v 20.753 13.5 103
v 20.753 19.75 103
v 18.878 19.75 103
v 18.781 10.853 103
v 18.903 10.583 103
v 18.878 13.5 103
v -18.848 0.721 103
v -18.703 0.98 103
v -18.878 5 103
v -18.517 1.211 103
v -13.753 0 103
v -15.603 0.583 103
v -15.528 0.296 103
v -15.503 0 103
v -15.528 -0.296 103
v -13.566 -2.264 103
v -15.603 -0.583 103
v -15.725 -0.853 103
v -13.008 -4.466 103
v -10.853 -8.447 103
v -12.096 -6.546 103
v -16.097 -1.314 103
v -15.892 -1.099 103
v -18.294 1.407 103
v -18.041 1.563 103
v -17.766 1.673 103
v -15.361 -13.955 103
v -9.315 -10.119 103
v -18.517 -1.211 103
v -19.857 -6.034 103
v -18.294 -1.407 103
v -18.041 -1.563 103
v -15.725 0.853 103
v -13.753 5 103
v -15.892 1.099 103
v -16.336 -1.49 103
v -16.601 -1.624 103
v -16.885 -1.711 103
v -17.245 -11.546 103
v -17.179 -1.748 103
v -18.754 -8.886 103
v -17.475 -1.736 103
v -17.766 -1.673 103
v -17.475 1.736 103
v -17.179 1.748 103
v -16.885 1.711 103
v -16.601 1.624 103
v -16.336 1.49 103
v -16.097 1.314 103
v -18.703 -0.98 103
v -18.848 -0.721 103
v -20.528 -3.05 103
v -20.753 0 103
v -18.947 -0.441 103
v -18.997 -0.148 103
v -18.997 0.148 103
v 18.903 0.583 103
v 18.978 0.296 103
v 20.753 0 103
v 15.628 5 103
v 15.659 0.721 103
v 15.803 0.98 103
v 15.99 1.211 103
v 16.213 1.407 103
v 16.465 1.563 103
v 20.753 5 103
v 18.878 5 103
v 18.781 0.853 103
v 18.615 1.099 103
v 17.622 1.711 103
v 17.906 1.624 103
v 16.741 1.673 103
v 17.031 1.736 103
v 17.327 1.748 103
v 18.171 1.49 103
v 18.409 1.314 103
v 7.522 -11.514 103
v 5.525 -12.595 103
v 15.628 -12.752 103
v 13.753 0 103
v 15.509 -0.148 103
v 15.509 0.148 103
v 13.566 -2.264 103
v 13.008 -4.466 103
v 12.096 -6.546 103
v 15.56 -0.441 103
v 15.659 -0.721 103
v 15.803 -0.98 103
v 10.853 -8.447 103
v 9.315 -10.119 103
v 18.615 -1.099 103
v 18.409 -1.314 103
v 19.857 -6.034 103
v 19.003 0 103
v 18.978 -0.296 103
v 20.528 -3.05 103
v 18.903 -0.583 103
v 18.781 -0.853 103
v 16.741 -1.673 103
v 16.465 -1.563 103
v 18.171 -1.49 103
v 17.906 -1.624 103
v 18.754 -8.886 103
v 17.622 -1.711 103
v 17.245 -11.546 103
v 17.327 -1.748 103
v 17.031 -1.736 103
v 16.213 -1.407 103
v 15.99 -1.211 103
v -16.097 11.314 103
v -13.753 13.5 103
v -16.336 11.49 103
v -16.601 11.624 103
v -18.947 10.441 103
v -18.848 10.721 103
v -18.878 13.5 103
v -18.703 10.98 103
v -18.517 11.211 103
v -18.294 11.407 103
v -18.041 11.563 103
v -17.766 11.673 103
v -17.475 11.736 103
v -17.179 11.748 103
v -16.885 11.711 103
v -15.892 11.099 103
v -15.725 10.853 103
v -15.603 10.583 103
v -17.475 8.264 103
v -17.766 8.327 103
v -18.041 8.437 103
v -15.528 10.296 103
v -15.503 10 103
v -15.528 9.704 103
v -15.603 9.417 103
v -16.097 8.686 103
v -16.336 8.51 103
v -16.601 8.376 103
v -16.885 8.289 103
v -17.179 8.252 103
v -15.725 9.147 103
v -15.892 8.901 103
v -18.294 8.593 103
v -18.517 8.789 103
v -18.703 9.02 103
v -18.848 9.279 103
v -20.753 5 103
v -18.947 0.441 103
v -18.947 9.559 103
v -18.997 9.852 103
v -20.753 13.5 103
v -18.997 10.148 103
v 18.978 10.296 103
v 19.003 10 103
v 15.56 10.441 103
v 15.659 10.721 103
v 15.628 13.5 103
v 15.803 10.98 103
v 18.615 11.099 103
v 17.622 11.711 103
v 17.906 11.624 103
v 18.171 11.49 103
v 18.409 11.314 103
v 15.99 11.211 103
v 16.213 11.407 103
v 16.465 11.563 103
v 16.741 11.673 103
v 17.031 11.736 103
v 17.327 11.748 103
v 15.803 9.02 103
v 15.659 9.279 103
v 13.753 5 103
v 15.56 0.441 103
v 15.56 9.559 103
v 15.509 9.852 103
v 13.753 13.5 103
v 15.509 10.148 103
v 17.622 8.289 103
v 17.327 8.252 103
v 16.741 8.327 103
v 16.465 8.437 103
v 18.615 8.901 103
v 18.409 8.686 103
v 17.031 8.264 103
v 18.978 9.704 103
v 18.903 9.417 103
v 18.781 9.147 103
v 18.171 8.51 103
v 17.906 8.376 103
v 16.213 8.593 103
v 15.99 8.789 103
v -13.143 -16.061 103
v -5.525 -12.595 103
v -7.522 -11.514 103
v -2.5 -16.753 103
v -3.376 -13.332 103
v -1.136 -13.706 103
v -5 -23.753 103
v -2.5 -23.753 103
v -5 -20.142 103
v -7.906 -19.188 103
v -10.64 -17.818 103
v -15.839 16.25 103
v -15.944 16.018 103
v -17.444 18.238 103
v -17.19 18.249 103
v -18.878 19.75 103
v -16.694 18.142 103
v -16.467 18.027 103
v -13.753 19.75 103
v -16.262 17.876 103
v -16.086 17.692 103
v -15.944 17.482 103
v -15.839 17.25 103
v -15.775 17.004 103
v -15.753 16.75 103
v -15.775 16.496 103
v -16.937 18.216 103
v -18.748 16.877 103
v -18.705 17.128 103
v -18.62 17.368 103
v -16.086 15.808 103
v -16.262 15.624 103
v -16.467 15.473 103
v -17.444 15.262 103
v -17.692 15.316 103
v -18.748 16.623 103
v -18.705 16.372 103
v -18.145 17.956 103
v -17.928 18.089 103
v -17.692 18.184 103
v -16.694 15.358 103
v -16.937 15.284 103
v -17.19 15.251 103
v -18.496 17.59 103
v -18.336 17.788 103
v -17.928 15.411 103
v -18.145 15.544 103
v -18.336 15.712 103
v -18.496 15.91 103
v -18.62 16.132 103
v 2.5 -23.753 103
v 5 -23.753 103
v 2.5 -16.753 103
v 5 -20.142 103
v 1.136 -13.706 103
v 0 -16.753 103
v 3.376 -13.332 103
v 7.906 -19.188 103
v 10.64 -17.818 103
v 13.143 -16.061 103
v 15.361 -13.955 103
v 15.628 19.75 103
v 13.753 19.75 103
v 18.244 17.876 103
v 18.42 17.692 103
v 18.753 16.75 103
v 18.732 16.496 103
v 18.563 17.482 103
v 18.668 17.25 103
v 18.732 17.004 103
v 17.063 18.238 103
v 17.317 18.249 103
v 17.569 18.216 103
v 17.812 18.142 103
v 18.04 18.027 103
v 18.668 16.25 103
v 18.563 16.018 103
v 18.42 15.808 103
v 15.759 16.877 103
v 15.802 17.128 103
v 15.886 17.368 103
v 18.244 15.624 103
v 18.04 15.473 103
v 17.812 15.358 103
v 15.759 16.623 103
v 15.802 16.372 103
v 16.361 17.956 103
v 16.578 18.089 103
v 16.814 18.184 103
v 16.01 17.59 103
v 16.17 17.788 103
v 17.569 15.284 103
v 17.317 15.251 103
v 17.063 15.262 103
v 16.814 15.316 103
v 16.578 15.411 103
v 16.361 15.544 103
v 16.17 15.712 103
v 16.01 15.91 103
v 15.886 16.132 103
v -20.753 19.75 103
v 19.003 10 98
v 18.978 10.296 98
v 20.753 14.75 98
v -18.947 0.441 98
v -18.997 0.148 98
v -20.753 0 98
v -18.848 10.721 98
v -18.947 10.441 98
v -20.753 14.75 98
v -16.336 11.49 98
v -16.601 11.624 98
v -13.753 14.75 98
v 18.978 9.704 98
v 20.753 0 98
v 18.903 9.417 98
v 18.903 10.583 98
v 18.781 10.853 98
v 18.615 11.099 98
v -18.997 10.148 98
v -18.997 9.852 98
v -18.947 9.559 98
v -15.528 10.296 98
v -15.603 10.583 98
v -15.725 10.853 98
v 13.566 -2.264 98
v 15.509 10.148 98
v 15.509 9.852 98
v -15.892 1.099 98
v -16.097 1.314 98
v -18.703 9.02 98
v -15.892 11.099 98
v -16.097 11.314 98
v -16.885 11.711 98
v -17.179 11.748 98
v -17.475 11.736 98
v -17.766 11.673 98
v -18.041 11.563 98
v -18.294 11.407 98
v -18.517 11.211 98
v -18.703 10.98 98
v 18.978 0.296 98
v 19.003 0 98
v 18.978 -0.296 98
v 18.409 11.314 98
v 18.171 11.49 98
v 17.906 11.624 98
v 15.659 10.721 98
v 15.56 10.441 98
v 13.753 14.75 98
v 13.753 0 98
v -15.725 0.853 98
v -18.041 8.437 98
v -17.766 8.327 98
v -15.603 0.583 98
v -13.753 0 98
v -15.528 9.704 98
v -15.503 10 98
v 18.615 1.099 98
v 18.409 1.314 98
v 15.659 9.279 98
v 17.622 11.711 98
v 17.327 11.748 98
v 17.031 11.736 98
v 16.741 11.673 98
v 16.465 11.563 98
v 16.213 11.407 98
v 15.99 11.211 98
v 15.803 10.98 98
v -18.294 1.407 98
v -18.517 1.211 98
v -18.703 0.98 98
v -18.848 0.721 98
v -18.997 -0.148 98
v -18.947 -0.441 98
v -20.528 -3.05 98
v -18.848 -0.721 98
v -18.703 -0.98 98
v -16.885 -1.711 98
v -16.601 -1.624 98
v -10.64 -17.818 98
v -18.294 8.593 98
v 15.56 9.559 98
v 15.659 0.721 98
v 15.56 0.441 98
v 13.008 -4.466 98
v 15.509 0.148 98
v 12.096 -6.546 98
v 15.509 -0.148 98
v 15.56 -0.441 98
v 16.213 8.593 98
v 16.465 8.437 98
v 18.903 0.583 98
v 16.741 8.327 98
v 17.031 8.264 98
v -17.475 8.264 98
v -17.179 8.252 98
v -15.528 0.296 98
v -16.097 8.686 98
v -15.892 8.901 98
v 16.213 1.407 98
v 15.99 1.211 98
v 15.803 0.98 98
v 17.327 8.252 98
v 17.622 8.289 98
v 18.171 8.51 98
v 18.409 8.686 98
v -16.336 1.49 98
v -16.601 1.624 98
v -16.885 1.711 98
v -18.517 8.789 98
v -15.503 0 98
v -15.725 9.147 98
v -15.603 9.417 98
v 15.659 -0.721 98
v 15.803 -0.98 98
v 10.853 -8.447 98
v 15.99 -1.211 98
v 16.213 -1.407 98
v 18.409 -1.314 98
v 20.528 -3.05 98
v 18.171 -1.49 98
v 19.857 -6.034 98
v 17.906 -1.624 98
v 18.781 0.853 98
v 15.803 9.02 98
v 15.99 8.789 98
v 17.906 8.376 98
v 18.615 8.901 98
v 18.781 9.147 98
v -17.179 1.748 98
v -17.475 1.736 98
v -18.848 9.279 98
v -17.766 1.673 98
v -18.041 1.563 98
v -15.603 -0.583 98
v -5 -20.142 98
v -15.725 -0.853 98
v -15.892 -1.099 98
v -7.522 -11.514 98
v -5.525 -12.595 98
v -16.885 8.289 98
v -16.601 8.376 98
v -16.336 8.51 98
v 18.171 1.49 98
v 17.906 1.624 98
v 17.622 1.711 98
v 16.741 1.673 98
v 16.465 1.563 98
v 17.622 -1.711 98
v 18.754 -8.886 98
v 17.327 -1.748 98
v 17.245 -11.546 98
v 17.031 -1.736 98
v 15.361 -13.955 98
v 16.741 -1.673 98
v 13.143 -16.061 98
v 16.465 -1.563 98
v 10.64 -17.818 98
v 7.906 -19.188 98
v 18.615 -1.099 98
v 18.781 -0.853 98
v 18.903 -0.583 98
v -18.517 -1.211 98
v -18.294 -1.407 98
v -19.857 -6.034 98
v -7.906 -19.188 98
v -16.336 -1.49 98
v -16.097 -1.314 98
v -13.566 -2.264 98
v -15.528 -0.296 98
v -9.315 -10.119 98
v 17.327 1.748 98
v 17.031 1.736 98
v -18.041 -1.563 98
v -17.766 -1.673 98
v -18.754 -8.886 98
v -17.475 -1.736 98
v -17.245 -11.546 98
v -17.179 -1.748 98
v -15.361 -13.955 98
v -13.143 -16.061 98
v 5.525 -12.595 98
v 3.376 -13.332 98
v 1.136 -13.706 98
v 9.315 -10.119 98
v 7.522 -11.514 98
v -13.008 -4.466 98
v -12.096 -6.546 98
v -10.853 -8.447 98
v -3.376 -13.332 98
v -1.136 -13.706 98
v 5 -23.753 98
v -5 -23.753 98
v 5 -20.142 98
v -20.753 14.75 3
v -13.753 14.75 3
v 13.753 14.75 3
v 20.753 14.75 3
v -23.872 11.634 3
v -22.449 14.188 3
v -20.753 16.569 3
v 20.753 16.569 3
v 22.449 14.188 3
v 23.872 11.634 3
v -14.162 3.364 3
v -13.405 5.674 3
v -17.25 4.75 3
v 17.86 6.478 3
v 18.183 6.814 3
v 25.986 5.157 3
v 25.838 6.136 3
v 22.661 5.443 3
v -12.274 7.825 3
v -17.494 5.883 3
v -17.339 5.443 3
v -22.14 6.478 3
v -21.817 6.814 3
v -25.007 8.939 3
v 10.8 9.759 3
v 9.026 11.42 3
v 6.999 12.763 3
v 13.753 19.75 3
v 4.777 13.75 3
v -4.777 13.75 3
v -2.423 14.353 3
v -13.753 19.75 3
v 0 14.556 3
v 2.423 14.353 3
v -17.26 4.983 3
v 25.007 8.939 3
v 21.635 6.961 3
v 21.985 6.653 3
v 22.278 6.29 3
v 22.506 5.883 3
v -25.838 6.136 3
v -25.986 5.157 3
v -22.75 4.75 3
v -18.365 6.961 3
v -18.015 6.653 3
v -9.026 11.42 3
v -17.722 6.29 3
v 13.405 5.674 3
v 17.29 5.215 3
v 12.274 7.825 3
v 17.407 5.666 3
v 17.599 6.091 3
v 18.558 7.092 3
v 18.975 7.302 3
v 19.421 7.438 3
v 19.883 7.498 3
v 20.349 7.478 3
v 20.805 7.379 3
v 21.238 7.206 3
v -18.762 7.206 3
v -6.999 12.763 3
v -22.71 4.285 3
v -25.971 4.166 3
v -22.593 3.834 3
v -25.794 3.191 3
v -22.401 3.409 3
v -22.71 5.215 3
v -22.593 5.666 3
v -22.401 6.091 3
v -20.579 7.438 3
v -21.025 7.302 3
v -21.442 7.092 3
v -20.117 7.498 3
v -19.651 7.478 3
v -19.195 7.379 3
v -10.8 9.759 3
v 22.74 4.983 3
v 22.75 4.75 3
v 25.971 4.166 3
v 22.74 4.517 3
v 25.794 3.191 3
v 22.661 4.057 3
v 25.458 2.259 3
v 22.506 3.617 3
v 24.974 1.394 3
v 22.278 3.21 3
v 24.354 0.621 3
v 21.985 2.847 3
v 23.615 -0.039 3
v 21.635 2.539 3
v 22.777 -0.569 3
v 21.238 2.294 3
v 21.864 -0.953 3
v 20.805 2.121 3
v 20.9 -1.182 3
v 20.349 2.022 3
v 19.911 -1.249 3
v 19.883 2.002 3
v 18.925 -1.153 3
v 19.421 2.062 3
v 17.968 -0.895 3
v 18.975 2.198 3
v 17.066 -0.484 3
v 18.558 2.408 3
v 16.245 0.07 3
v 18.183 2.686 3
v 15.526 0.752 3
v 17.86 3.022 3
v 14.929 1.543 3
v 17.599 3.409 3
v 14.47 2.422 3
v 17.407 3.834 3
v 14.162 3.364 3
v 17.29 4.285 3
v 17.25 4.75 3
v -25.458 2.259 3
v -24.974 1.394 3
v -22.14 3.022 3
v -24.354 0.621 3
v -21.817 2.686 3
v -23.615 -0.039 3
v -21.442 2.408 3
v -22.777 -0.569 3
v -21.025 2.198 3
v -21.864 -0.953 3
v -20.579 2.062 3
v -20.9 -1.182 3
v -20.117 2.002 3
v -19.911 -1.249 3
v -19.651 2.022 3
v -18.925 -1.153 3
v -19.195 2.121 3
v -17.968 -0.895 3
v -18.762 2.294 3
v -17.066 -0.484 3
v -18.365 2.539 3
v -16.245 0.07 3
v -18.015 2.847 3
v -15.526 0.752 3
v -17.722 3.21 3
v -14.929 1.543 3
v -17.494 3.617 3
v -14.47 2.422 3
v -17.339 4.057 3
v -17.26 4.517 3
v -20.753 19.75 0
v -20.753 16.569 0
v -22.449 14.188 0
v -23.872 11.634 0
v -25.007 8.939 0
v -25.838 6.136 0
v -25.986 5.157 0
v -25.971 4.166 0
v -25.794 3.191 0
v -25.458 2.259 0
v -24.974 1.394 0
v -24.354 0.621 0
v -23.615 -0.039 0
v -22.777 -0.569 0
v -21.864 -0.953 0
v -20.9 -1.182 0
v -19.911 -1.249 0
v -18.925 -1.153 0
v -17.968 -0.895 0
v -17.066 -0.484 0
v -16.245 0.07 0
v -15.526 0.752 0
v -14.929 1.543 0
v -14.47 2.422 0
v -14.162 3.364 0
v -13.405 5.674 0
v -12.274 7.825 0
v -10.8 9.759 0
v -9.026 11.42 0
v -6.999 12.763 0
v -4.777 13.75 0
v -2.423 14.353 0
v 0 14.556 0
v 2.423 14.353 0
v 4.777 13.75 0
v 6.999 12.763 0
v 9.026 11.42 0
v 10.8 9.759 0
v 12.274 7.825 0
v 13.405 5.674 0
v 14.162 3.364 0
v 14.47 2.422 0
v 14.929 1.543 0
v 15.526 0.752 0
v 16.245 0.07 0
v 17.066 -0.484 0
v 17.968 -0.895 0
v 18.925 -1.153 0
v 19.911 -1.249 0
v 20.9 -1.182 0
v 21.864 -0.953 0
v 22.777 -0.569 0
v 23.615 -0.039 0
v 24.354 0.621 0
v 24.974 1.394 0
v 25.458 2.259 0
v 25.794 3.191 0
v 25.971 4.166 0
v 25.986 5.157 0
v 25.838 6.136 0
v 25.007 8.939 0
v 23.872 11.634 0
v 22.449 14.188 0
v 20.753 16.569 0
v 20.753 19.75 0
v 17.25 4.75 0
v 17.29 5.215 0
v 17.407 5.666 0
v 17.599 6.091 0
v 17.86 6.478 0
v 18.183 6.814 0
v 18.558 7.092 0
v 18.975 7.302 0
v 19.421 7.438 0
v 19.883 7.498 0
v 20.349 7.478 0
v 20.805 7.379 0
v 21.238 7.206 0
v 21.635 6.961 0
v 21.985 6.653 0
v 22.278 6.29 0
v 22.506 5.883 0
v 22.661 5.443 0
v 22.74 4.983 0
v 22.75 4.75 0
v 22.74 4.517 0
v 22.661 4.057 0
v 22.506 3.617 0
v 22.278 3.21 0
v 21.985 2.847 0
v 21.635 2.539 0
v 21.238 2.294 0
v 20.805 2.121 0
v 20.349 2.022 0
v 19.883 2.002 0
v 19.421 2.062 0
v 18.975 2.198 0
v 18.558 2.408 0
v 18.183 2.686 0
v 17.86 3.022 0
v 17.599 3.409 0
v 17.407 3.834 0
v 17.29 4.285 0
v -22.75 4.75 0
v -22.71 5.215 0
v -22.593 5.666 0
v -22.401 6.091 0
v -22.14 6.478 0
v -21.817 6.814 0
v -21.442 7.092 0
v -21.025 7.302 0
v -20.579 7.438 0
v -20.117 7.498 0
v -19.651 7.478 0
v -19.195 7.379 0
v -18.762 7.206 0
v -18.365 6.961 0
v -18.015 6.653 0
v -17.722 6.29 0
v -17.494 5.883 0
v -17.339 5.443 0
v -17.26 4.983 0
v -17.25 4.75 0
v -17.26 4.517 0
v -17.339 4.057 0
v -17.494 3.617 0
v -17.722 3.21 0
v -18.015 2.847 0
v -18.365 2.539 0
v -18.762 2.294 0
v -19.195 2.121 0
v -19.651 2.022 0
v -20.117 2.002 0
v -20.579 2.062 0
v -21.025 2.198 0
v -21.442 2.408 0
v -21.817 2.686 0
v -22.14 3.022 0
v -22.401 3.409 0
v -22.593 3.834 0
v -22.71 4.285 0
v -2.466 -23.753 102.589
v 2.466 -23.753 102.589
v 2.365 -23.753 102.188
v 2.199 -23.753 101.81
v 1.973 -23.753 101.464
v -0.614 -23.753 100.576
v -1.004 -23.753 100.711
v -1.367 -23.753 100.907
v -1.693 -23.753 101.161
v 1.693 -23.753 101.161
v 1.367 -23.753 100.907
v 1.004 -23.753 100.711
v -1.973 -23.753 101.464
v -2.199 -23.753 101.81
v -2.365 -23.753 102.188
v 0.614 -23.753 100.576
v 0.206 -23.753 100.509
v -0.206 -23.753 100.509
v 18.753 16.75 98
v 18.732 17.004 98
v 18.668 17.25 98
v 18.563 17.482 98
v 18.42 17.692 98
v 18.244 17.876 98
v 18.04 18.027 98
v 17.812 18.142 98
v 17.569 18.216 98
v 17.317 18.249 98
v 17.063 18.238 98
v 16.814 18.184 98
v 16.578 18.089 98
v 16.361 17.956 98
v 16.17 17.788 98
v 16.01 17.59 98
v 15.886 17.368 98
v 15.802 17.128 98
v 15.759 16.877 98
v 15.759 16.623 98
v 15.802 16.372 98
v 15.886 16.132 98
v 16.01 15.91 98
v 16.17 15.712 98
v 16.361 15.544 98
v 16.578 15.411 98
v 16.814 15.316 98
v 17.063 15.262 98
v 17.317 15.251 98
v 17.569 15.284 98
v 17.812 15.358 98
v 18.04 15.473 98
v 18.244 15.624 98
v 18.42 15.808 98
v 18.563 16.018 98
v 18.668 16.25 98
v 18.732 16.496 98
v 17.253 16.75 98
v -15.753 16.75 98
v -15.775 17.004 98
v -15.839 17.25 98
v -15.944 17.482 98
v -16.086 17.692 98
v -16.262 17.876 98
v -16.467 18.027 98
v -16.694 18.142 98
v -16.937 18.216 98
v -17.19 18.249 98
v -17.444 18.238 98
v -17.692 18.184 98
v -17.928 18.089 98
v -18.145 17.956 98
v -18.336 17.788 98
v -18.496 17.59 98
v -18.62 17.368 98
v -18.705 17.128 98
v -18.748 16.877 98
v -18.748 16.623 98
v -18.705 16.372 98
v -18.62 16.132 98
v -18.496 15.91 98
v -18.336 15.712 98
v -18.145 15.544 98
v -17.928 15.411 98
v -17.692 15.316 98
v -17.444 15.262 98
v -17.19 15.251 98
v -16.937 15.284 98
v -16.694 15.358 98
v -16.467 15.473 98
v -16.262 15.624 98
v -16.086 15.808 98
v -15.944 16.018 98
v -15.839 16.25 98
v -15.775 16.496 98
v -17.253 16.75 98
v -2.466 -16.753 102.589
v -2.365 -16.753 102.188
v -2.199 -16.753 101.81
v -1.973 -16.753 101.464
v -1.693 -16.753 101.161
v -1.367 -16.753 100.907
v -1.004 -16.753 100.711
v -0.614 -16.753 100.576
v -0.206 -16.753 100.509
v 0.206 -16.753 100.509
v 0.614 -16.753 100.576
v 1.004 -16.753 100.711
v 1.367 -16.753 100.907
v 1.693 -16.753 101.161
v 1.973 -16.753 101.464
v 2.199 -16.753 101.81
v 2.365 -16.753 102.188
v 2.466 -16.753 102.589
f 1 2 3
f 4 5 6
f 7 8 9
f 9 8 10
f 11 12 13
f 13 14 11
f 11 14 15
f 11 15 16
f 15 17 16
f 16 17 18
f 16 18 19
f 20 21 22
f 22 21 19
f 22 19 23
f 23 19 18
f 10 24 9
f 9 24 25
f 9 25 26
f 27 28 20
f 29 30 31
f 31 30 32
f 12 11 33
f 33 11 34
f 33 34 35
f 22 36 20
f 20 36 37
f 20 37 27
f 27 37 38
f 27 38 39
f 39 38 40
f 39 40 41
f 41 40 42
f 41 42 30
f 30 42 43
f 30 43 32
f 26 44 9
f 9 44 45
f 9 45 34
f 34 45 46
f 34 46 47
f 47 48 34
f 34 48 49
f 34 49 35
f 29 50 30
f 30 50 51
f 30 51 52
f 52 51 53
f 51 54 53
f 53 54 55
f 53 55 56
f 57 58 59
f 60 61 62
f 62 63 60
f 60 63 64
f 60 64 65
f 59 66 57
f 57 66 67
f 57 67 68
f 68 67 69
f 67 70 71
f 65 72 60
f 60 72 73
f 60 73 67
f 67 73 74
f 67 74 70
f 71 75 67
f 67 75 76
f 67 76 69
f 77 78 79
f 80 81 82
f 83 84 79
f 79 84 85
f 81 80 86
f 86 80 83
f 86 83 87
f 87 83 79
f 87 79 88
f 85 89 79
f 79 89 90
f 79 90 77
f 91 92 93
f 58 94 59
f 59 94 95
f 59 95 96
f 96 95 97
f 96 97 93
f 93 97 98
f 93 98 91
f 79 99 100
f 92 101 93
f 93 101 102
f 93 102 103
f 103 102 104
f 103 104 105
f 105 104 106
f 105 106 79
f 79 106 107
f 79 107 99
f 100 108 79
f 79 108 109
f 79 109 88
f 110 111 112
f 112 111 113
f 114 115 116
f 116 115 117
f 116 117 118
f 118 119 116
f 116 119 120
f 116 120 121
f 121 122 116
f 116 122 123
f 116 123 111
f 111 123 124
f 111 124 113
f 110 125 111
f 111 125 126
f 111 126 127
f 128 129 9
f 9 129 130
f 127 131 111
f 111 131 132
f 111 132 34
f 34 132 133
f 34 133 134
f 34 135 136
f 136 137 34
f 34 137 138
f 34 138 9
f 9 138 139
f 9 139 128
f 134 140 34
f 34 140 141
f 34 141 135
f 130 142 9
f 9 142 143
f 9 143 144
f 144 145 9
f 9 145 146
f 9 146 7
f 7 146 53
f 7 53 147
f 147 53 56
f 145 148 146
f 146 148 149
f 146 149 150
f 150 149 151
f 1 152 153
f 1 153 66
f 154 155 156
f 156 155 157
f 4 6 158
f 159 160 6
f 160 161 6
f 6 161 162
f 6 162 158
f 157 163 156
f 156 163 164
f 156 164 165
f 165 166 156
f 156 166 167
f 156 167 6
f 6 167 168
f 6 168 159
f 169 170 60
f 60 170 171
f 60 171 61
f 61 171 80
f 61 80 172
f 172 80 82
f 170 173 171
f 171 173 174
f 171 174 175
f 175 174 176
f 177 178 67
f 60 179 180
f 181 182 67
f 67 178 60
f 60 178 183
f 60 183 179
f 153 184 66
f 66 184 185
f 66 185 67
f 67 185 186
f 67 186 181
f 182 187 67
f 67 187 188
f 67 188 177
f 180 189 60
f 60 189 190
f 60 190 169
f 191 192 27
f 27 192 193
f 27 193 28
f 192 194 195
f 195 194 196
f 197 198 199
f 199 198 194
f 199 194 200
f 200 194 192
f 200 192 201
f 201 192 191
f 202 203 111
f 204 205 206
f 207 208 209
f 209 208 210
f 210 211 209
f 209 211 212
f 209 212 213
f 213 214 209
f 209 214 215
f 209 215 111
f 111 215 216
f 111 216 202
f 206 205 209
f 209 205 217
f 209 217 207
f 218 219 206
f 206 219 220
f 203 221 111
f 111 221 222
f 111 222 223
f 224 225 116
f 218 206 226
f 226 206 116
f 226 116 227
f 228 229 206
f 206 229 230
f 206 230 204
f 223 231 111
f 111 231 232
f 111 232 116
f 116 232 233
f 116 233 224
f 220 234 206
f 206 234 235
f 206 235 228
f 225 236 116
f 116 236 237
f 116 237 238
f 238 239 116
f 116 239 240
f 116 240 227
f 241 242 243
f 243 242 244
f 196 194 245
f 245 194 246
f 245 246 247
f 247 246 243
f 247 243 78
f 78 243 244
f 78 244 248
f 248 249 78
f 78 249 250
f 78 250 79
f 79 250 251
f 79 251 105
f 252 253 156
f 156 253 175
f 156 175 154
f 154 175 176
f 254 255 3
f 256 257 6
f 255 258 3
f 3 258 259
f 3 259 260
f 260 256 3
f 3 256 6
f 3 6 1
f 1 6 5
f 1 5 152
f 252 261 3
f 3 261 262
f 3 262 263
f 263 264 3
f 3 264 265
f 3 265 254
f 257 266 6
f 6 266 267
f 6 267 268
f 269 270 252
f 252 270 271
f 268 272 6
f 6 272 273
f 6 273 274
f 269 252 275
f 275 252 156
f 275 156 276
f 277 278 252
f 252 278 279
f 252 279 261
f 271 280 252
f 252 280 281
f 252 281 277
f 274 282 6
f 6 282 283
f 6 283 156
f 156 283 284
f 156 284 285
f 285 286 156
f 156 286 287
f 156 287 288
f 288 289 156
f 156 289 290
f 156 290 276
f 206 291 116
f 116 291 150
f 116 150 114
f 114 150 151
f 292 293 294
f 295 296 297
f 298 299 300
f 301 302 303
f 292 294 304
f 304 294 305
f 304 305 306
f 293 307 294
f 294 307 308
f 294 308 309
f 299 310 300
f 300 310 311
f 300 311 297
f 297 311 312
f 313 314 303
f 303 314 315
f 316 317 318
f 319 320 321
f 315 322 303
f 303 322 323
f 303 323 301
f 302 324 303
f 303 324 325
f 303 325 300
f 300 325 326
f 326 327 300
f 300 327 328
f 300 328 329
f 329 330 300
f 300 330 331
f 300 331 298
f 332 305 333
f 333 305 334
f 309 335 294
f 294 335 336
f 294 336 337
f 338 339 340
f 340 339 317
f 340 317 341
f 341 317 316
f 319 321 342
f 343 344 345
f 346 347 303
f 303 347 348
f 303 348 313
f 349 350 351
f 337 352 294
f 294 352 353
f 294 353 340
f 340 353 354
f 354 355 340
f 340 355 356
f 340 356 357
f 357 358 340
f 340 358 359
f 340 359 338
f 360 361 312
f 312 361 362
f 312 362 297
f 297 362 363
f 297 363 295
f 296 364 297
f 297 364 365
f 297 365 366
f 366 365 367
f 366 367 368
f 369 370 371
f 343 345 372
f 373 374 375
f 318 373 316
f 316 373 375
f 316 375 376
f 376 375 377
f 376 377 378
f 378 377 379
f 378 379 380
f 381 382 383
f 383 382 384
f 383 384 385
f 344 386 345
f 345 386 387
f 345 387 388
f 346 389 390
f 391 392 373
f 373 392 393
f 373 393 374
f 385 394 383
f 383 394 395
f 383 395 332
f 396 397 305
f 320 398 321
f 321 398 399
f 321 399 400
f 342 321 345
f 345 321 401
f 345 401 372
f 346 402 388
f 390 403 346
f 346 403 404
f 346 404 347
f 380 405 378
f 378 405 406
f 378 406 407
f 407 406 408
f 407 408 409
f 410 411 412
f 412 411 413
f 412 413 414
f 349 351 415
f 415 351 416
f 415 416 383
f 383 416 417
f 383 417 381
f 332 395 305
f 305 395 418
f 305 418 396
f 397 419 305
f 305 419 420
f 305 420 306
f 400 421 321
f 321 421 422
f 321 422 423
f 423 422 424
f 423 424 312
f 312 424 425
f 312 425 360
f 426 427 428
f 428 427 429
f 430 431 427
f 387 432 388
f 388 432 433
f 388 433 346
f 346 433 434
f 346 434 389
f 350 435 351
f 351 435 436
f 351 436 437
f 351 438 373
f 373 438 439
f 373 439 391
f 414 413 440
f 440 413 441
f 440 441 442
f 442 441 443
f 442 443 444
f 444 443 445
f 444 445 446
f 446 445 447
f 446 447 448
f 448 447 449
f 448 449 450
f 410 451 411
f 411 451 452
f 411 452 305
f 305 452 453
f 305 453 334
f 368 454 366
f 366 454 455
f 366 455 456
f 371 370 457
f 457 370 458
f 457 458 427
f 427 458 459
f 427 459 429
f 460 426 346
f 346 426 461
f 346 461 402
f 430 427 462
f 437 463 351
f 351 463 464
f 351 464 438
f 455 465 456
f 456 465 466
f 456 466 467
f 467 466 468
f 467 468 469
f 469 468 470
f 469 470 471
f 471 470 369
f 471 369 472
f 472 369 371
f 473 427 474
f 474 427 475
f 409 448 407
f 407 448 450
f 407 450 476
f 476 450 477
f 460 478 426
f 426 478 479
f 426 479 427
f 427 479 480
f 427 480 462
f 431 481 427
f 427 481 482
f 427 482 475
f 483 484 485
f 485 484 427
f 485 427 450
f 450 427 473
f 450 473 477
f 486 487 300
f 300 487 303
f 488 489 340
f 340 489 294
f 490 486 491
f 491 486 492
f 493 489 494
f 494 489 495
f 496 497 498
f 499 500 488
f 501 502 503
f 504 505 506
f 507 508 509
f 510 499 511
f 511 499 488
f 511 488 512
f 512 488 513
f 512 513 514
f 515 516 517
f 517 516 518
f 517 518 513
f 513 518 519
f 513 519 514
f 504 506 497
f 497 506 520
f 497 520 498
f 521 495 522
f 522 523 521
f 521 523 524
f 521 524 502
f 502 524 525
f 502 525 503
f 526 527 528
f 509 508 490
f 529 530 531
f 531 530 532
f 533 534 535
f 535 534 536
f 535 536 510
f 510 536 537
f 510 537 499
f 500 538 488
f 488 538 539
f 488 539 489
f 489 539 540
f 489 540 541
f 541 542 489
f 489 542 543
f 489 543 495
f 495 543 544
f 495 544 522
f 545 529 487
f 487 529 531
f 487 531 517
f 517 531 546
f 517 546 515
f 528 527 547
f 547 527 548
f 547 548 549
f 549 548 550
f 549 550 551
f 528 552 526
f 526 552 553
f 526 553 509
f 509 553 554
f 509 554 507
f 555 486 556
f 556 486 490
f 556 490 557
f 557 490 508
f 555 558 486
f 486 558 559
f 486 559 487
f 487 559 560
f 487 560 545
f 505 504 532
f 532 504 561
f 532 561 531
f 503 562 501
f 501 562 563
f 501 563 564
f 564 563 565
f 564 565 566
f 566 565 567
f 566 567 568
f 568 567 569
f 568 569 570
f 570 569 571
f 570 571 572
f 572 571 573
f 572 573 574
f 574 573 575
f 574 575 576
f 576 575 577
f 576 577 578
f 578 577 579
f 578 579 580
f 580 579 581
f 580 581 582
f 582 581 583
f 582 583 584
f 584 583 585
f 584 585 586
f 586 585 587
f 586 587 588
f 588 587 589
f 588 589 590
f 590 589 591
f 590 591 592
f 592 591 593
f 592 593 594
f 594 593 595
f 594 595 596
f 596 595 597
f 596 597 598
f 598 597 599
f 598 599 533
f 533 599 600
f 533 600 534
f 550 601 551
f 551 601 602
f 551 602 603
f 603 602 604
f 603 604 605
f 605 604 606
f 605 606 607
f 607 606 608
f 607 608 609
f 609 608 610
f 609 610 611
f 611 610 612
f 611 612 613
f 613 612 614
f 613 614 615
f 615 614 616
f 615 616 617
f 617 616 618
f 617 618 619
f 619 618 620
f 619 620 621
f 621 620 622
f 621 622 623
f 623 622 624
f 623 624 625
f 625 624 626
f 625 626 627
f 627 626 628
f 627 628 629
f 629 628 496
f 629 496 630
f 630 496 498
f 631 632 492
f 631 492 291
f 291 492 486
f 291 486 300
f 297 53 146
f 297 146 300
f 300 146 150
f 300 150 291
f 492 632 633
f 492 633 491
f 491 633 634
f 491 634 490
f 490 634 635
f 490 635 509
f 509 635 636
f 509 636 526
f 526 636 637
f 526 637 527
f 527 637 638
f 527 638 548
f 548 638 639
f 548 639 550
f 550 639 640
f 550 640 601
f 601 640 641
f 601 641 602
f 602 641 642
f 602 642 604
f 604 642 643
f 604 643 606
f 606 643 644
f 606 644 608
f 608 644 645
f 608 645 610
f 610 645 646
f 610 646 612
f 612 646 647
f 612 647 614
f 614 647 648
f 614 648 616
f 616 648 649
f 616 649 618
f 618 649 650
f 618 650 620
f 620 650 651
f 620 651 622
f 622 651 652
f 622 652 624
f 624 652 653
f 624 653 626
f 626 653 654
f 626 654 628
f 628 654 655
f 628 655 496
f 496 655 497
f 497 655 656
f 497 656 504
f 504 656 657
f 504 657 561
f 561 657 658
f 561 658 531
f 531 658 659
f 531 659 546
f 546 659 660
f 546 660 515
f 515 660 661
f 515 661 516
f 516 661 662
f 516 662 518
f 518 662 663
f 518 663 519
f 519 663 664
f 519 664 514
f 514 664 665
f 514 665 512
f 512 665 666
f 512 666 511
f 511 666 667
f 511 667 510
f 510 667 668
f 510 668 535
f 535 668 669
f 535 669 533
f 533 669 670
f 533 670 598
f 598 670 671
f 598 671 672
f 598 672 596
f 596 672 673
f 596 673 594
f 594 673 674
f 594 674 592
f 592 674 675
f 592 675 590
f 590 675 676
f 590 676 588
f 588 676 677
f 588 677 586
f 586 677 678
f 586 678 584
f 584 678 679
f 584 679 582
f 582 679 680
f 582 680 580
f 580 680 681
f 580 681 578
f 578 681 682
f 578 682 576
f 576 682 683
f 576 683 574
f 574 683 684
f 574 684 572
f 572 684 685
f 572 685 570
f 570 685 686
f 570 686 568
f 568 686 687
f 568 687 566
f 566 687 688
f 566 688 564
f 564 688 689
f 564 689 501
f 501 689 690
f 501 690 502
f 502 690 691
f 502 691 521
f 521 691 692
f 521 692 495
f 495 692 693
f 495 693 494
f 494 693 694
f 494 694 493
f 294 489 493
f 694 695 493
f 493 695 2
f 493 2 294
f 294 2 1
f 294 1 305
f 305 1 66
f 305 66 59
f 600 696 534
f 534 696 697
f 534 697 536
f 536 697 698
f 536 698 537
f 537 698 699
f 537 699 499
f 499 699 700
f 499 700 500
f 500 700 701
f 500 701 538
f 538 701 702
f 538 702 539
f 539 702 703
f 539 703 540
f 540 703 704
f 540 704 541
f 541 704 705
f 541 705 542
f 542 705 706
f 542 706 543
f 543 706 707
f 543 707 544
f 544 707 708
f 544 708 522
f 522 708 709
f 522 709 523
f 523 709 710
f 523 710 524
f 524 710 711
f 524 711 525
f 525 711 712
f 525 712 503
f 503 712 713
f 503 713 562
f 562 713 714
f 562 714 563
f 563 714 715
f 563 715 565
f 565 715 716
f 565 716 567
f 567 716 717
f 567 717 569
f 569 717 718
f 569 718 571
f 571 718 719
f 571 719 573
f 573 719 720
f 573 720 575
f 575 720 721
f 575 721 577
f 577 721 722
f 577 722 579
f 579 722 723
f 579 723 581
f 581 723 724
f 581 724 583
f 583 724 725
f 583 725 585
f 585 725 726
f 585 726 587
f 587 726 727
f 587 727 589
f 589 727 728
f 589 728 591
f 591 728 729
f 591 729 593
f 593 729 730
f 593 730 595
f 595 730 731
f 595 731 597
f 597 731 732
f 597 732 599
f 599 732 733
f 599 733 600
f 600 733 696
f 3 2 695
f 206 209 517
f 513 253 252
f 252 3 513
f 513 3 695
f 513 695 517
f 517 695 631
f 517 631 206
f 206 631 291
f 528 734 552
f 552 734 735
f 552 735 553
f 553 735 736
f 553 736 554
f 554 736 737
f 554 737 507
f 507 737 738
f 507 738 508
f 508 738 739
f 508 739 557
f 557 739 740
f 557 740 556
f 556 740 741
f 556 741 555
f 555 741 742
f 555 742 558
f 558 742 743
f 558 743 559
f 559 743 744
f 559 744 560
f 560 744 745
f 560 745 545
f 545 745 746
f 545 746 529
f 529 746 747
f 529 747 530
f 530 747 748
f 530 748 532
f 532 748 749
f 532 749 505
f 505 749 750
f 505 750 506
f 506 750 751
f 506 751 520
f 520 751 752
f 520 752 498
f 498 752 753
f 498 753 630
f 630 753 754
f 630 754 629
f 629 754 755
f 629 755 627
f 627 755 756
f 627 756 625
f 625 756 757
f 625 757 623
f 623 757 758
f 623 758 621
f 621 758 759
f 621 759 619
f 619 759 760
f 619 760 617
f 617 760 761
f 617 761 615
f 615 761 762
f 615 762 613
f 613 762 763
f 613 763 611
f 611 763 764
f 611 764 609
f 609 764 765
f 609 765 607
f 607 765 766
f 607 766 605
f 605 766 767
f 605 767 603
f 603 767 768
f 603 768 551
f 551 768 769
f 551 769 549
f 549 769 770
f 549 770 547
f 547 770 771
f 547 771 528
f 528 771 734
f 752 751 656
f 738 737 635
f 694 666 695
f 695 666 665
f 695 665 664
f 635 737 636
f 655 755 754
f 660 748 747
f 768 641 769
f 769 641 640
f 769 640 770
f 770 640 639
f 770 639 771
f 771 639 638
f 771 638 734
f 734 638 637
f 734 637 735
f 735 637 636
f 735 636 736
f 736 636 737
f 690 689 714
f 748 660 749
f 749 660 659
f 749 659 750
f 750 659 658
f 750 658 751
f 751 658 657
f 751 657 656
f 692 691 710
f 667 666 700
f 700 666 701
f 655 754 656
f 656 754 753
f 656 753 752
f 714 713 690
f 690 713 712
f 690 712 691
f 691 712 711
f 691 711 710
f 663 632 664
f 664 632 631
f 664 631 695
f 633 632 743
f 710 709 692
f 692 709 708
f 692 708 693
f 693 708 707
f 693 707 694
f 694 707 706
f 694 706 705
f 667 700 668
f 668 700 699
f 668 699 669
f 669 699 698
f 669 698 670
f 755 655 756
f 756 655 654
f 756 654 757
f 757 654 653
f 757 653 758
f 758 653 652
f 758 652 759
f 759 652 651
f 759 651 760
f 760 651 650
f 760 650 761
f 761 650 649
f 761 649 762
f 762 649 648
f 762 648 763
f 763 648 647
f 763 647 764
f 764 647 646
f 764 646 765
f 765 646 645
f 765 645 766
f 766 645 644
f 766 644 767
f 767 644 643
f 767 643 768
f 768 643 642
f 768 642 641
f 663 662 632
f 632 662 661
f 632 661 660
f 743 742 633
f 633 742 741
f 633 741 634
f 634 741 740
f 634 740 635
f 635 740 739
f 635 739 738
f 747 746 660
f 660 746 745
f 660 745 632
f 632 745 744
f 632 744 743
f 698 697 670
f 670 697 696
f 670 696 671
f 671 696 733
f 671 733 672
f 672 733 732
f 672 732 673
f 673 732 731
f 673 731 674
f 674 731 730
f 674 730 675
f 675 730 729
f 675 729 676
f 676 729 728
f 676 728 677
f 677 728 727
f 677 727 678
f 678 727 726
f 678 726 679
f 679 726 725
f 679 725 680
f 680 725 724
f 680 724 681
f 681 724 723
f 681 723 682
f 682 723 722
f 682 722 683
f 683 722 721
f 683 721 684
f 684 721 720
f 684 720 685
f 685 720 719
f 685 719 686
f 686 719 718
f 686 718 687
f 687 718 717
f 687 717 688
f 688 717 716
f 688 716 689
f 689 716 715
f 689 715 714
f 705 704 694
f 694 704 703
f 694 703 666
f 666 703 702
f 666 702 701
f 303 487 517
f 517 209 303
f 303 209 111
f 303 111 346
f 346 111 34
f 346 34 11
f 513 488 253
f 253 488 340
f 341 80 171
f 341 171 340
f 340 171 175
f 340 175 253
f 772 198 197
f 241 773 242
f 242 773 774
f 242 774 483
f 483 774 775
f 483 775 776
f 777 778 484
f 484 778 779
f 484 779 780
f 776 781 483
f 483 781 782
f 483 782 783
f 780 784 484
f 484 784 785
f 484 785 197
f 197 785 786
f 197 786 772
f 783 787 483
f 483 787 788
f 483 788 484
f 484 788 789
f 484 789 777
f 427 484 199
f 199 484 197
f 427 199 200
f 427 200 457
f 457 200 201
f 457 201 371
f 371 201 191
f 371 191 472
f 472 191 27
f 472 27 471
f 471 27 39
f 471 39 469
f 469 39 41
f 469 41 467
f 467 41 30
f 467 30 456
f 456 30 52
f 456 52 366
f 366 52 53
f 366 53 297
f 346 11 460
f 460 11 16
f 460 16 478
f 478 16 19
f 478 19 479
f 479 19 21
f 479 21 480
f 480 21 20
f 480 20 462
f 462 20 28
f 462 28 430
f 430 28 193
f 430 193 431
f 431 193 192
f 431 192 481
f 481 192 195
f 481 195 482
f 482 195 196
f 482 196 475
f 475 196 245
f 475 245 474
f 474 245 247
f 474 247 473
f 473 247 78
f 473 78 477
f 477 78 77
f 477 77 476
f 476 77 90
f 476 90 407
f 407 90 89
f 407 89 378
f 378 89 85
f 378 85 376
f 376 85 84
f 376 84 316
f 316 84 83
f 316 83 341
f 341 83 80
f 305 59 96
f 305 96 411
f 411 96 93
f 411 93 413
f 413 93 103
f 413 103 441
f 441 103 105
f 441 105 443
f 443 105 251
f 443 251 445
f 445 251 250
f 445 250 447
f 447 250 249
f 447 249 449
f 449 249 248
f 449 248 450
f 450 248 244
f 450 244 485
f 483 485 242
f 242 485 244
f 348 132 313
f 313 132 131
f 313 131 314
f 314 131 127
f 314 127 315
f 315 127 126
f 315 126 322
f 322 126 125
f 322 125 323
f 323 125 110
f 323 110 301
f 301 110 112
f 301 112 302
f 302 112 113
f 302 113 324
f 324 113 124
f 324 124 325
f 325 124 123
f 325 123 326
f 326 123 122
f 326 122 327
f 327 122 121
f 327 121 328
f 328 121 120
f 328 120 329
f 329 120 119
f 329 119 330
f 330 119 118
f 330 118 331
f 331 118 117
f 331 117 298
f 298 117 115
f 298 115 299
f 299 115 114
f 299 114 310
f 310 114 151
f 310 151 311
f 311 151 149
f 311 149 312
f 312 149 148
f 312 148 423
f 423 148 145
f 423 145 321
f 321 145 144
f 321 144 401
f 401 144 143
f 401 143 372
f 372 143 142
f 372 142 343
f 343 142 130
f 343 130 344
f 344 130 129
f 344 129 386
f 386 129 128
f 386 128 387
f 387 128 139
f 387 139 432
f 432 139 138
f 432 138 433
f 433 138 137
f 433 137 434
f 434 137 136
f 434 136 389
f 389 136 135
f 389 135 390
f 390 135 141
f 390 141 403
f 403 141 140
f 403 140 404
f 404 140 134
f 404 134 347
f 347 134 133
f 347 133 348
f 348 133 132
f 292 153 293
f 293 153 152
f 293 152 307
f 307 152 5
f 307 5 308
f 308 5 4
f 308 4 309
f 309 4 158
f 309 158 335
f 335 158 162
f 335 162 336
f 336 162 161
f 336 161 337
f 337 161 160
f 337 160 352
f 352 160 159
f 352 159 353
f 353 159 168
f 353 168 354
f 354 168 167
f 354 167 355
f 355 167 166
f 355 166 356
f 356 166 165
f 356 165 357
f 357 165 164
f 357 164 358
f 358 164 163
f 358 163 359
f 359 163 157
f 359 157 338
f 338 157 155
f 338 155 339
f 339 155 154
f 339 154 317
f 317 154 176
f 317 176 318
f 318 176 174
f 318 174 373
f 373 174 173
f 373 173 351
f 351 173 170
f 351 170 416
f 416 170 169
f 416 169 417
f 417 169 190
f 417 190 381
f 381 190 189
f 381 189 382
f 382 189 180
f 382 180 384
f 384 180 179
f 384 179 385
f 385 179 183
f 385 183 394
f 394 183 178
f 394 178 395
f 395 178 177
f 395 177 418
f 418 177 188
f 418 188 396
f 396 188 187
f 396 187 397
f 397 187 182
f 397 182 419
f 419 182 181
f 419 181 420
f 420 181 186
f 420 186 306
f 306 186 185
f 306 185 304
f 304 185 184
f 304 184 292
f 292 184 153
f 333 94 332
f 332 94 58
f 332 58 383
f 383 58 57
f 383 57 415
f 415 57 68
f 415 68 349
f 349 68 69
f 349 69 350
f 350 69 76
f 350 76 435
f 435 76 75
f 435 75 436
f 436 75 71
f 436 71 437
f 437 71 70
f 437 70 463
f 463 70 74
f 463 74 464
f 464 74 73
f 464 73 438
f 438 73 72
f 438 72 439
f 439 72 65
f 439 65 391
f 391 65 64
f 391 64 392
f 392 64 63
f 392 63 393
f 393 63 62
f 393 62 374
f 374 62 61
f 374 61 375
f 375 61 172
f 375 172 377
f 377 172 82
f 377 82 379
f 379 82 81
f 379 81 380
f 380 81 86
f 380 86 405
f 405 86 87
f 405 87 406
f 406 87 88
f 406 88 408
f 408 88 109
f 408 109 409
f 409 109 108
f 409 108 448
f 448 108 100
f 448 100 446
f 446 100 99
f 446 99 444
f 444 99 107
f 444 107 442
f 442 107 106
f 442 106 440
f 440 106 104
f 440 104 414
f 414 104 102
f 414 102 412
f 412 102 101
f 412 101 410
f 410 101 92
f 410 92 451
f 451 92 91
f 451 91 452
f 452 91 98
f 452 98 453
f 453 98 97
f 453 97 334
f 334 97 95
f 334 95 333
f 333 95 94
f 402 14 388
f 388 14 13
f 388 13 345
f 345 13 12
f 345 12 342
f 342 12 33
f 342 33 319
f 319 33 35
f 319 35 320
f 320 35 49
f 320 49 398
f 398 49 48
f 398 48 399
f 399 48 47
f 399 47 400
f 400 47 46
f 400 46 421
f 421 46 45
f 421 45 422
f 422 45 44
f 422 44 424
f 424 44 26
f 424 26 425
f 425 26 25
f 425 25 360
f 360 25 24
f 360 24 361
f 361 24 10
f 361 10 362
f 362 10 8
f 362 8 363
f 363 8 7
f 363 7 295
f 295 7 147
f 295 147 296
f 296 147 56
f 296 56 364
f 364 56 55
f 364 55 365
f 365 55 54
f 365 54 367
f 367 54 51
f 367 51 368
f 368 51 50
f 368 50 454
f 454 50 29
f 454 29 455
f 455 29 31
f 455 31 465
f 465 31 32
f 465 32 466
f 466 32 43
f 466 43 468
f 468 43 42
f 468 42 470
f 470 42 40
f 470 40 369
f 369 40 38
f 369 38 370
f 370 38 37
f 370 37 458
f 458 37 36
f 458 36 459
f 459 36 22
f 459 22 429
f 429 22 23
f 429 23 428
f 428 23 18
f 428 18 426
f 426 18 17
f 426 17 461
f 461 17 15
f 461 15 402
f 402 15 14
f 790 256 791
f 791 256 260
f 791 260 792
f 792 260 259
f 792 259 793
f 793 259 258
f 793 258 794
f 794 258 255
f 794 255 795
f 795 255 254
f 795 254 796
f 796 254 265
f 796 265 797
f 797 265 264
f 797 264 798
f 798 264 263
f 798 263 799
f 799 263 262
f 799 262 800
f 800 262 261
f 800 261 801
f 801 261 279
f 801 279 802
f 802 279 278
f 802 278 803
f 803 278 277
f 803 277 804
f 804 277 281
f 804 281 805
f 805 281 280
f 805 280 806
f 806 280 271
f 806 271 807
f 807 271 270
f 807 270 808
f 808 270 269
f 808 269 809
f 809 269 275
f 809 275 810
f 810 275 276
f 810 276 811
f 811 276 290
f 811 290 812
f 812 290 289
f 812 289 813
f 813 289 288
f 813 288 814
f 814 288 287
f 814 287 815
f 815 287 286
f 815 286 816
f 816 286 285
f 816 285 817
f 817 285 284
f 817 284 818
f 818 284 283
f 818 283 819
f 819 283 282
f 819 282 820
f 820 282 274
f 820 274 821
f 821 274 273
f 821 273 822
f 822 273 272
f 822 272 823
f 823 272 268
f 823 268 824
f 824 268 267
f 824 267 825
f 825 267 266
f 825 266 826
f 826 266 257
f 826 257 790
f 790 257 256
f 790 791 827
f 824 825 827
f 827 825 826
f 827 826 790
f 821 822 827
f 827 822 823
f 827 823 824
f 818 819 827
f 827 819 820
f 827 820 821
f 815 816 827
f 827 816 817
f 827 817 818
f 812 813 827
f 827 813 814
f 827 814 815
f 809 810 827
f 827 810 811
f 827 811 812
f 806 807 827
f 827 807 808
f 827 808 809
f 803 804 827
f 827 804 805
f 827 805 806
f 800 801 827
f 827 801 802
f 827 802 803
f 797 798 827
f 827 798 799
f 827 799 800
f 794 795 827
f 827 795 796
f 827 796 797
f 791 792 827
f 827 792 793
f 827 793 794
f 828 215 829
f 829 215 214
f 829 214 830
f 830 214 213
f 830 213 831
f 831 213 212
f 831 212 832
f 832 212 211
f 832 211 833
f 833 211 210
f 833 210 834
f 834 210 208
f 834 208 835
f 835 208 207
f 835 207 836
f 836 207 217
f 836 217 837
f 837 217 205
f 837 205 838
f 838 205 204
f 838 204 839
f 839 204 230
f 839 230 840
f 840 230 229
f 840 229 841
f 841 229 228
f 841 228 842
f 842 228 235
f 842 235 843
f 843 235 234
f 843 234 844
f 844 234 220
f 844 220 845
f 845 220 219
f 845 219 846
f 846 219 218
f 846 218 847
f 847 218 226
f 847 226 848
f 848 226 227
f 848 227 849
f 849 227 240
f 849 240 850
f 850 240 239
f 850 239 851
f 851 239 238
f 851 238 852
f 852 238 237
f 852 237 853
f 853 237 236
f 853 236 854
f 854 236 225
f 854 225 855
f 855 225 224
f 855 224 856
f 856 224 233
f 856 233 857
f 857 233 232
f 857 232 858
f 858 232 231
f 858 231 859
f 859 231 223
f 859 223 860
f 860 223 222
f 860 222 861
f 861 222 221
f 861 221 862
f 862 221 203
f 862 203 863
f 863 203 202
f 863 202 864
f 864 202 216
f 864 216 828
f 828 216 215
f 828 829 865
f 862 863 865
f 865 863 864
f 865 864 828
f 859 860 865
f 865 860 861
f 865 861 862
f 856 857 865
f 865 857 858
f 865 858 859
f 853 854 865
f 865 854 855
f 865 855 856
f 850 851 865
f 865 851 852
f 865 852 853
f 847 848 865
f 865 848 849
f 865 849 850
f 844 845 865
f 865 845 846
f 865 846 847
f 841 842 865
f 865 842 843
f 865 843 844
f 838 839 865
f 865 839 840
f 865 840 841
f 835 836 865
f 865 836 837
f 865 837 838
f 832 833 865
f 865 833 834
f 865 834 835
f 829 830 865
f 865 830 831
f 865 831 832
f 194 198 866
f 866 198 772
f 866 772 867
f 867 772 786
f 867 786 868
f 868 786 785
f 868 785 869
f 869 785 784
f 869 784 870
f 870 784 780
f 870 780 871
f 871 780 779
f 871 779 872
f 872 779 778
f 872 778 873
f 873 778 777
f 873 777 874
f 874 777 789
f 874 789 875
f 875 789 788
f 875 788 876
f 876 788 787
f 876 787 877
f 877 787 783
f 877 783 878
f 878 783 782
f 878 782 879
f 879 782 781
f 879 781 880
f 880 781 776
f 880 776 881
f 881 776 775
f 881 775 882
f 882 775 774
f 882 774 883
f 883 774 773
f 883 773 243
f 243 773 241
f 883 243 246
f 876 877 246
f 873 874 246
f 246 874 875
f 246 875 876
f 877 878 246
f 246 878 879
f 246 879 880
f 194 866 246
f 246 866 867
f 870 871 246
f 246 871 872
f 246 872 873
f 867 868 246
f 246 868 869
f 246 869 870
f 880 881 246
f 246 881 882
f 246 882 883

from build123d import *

# Parameters (mm, degrees)
SKETCH2_R           = 2.75
BOSS_EXTRUDE1_DEPTH = 3
SKETCH3_W           = 7
SKETCH3_H           = 5
BOSS_EXTRUDE2_DEPTH = 100
BOSS_EXTRUDE3_DEPTH = 5
SKETCH5_R           = 1.75
CUT_EXTRUDE1_DEPTH  = 5
SKETCH6_R           = 1.5
CUT_EXTRUDE2_DEPTH  = 5
SKETCH7_R           = 2.5
CUT_EXTRUDE3_DEPTH  = 7


with BuildPart() as part:
    # Sketch2 → Boss-Extrude1 (new body)
    with BuildSketch(Plane.XY):
        with BuildLine():
            Line((-20.753194099, 19.75), (-20.753194099, 16.569349275))
            ThreePointArc((-20.753194099, 16.569349275), (-23.872314522, 11.634044872), (-25.837619304, 6.136434585))
            ThreePointArc((-25.837619304, 6.136434585), (-21.386434585, -1.087619304), (-14.162380696, 3.363565415))
            ThreePointArc((-14.162380696, 3.363565415), (0, 14.556325061), (14.162380696, 3.363565415))
            ThreePointArc((14.162380696, 3.363565415), (21.386434585, -1.087619304), (25.837619304, 6.136434585))
            ThreePointArc((25.837619304, 6.136434585), (23.872314522, 11.634044872), (20.753194099, 16.569349275))
            Line((20.753194099, 16.569349275), (20.753194099, 19.75))
            Line((20.753194099, 19.75), (0, 19.75))
            Line((0, 19.75), (-20.753194099, 19.75))
        make_face()
        with Locations((-20, 4.75)):
            Circle(SKETCH2_R, mode=Mode.SUBTRACT)
        with Locations((20, 4.75)):
            Circle(SKETCH2_R, mode=Mode.SUBTRACT)
    extrude(amount=BOSS_EXTRUDE1_DEPTH)

    # Sketch3 → Boss-Extrude2 (add)
    with BuildSketch(Plane.XY.offset(3)):
        with Locations((-17.253194099, 17.25)):
            Rectangle(SKETCH3_W, SKETCH3_H)
        with Locations((17.253194099, 17.25)):
            Rectangle(SKETCH3_W, SKETCH3_H)
    extrude(amount=BOSS_EXTRUDE2_DEPTH)

    # Sketch4 → Boss-Extrude3 (add)
    with BuildSketch(Plane.XY.offset(103)):
        with BuildLine():
            Line((20.753194099, 19.75), (13.753194099, 19.75))
            Line((13.753194099, 19.75), (13.753194099, 0))
            ThreePointArc((13.753194099, 0), (0, -13.753194099), (-13.753194099, 0))
            Line((-13.753194099, 0), (-13.753194099, 19.75))
            Line((-13.753194099, 19.75), (-20.753194099, 19.75))
            Line((-20.753194099, 19.75), (-20.753194099, 0))
            ThreePointArc((-20.753194099, 0), (-16.34718685, -12.785325472), (-5, -20.141873431))
            Line((-5, -20.141873431), (-5, -23.753194099))
            Line((-5, -23.753194099), (5, -23.753194099))
            Line((5, -23.753194099), (5, -20.141873431))
            ThreePointArc((5, -20.141873431), (16.34718685, -12.785325472), (20.753194099, 0))
            Line((20.753194099, 0), (20.753194099, 19.75))
        make_face()
    extrude(amount=-BOSS_EXTRUDE3_DEPTH)

    # Sketch5 → Cut-Extrude1 (cut)
    with BuildSketch(Plane.XY.offset(103)):
        with Locations((-17.253194099, 10)):
            Circle(SKETCH5_R)
        with Locations((17.253194099, 10)):
            Circle(SKETCH5_R)
        with BuildLine():
            ThreePointArc((19.003194099, 0), (17.253194099, 1.75), (15.503194099, 0))
            Line((15.503194099, 0), (19.003194099, 0))
        make_face()
        with BuildLine():
            Line((19.003194099, 0), (15.503194099, 0))
            ThreePointArc((15.503194099, 0), (17.253194099, -1.75), (19.003194099, 0))
        make_face()
        with BuildLine():
            ThreePointArc((-19.003194099, 0), (-17.253194099, -1.75), (-15.503194099, 0))
            Line((-15.503194099, 0), (-19.003194099, 0))
        make_face()
        with BuildLine():
            Line((-19.003194099, 0), (-15.503194099, 0))
            ThreePointArc((-15.503194099, 0), (-17.253194099, 1.75), (-19.003194099, 0))
        make_face()
    extrude(amount=-CUT_EXTRUDE1_DEPTH, mode=Mode.SUBTRACT)

    # Sketch6 → Cut-Extrude2 (cut)
    with BuildSketch(Plane.XY.offset(103)):
        with Locations((-17.253194099, 16.75)):
            Circle(SKETCH6_R)
        with Locations((17.253194099, 16.75)):
            Circle(SKETCH6_R)
    extrude(amount=-CUT_EXTRUDE2_DEPTH, mode=Mode.SUBTRACT)

    # Sketch7 → Cut-Extrude3 (cut)
    with BuildSketch(Plane.XZ.offset(23.753194099)):
        with Locations((0, 103)):
            Circle(SKETCH7_R)
    extrude(amount=-CUT_EXTRUDE3_DEPTH, mode=Mode.SUBTRACT)


solid = part.part
